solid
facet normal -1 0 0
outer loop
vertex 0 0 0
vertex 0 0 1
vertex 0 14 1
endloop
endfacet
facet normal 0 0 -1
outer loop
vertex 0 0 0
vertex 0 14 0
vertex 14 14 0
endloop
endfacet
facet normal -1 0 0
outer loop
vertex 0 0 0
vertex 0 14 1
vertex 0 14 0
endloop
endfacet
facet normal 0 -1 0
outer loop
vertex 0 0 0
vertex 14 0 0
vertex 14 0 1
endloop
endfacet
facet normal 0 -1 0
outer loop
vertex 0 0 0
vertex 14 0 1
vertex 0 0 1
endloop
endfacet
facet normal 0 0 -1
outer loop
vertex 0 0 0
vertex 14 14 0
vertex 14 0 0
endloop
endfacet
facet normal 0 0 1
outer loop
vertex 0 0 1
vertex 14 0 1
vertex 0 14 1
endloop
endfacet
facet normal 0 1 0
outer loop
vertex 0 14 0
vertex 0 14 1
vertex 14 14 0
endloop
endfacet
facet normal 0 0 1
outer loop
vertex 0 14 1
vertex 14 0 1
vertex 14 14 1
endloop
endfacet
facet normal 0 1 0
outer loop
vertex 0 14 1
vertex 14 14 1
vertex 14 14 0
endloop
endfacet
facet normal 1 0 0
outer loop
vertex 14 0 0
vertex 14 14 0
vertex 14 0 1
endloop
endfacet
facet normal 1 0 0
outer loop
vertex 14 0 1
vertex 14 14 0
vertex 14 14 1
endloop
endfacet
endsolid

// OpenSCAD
/* Warning, this is a very basic generator with a lot of approximation 
input data : [TQFP, AYC, 14x14x1.0mm, 80, , A, C04-25122A]
generated by com.zoubworld.electronics.cad.model3d.Basic
Date : Sun Feb 15 10:50:49 CET 2026
*/

//body
color("black")
translate([0,0,0])
cube([14.0,14.0,1.0], center=false);
